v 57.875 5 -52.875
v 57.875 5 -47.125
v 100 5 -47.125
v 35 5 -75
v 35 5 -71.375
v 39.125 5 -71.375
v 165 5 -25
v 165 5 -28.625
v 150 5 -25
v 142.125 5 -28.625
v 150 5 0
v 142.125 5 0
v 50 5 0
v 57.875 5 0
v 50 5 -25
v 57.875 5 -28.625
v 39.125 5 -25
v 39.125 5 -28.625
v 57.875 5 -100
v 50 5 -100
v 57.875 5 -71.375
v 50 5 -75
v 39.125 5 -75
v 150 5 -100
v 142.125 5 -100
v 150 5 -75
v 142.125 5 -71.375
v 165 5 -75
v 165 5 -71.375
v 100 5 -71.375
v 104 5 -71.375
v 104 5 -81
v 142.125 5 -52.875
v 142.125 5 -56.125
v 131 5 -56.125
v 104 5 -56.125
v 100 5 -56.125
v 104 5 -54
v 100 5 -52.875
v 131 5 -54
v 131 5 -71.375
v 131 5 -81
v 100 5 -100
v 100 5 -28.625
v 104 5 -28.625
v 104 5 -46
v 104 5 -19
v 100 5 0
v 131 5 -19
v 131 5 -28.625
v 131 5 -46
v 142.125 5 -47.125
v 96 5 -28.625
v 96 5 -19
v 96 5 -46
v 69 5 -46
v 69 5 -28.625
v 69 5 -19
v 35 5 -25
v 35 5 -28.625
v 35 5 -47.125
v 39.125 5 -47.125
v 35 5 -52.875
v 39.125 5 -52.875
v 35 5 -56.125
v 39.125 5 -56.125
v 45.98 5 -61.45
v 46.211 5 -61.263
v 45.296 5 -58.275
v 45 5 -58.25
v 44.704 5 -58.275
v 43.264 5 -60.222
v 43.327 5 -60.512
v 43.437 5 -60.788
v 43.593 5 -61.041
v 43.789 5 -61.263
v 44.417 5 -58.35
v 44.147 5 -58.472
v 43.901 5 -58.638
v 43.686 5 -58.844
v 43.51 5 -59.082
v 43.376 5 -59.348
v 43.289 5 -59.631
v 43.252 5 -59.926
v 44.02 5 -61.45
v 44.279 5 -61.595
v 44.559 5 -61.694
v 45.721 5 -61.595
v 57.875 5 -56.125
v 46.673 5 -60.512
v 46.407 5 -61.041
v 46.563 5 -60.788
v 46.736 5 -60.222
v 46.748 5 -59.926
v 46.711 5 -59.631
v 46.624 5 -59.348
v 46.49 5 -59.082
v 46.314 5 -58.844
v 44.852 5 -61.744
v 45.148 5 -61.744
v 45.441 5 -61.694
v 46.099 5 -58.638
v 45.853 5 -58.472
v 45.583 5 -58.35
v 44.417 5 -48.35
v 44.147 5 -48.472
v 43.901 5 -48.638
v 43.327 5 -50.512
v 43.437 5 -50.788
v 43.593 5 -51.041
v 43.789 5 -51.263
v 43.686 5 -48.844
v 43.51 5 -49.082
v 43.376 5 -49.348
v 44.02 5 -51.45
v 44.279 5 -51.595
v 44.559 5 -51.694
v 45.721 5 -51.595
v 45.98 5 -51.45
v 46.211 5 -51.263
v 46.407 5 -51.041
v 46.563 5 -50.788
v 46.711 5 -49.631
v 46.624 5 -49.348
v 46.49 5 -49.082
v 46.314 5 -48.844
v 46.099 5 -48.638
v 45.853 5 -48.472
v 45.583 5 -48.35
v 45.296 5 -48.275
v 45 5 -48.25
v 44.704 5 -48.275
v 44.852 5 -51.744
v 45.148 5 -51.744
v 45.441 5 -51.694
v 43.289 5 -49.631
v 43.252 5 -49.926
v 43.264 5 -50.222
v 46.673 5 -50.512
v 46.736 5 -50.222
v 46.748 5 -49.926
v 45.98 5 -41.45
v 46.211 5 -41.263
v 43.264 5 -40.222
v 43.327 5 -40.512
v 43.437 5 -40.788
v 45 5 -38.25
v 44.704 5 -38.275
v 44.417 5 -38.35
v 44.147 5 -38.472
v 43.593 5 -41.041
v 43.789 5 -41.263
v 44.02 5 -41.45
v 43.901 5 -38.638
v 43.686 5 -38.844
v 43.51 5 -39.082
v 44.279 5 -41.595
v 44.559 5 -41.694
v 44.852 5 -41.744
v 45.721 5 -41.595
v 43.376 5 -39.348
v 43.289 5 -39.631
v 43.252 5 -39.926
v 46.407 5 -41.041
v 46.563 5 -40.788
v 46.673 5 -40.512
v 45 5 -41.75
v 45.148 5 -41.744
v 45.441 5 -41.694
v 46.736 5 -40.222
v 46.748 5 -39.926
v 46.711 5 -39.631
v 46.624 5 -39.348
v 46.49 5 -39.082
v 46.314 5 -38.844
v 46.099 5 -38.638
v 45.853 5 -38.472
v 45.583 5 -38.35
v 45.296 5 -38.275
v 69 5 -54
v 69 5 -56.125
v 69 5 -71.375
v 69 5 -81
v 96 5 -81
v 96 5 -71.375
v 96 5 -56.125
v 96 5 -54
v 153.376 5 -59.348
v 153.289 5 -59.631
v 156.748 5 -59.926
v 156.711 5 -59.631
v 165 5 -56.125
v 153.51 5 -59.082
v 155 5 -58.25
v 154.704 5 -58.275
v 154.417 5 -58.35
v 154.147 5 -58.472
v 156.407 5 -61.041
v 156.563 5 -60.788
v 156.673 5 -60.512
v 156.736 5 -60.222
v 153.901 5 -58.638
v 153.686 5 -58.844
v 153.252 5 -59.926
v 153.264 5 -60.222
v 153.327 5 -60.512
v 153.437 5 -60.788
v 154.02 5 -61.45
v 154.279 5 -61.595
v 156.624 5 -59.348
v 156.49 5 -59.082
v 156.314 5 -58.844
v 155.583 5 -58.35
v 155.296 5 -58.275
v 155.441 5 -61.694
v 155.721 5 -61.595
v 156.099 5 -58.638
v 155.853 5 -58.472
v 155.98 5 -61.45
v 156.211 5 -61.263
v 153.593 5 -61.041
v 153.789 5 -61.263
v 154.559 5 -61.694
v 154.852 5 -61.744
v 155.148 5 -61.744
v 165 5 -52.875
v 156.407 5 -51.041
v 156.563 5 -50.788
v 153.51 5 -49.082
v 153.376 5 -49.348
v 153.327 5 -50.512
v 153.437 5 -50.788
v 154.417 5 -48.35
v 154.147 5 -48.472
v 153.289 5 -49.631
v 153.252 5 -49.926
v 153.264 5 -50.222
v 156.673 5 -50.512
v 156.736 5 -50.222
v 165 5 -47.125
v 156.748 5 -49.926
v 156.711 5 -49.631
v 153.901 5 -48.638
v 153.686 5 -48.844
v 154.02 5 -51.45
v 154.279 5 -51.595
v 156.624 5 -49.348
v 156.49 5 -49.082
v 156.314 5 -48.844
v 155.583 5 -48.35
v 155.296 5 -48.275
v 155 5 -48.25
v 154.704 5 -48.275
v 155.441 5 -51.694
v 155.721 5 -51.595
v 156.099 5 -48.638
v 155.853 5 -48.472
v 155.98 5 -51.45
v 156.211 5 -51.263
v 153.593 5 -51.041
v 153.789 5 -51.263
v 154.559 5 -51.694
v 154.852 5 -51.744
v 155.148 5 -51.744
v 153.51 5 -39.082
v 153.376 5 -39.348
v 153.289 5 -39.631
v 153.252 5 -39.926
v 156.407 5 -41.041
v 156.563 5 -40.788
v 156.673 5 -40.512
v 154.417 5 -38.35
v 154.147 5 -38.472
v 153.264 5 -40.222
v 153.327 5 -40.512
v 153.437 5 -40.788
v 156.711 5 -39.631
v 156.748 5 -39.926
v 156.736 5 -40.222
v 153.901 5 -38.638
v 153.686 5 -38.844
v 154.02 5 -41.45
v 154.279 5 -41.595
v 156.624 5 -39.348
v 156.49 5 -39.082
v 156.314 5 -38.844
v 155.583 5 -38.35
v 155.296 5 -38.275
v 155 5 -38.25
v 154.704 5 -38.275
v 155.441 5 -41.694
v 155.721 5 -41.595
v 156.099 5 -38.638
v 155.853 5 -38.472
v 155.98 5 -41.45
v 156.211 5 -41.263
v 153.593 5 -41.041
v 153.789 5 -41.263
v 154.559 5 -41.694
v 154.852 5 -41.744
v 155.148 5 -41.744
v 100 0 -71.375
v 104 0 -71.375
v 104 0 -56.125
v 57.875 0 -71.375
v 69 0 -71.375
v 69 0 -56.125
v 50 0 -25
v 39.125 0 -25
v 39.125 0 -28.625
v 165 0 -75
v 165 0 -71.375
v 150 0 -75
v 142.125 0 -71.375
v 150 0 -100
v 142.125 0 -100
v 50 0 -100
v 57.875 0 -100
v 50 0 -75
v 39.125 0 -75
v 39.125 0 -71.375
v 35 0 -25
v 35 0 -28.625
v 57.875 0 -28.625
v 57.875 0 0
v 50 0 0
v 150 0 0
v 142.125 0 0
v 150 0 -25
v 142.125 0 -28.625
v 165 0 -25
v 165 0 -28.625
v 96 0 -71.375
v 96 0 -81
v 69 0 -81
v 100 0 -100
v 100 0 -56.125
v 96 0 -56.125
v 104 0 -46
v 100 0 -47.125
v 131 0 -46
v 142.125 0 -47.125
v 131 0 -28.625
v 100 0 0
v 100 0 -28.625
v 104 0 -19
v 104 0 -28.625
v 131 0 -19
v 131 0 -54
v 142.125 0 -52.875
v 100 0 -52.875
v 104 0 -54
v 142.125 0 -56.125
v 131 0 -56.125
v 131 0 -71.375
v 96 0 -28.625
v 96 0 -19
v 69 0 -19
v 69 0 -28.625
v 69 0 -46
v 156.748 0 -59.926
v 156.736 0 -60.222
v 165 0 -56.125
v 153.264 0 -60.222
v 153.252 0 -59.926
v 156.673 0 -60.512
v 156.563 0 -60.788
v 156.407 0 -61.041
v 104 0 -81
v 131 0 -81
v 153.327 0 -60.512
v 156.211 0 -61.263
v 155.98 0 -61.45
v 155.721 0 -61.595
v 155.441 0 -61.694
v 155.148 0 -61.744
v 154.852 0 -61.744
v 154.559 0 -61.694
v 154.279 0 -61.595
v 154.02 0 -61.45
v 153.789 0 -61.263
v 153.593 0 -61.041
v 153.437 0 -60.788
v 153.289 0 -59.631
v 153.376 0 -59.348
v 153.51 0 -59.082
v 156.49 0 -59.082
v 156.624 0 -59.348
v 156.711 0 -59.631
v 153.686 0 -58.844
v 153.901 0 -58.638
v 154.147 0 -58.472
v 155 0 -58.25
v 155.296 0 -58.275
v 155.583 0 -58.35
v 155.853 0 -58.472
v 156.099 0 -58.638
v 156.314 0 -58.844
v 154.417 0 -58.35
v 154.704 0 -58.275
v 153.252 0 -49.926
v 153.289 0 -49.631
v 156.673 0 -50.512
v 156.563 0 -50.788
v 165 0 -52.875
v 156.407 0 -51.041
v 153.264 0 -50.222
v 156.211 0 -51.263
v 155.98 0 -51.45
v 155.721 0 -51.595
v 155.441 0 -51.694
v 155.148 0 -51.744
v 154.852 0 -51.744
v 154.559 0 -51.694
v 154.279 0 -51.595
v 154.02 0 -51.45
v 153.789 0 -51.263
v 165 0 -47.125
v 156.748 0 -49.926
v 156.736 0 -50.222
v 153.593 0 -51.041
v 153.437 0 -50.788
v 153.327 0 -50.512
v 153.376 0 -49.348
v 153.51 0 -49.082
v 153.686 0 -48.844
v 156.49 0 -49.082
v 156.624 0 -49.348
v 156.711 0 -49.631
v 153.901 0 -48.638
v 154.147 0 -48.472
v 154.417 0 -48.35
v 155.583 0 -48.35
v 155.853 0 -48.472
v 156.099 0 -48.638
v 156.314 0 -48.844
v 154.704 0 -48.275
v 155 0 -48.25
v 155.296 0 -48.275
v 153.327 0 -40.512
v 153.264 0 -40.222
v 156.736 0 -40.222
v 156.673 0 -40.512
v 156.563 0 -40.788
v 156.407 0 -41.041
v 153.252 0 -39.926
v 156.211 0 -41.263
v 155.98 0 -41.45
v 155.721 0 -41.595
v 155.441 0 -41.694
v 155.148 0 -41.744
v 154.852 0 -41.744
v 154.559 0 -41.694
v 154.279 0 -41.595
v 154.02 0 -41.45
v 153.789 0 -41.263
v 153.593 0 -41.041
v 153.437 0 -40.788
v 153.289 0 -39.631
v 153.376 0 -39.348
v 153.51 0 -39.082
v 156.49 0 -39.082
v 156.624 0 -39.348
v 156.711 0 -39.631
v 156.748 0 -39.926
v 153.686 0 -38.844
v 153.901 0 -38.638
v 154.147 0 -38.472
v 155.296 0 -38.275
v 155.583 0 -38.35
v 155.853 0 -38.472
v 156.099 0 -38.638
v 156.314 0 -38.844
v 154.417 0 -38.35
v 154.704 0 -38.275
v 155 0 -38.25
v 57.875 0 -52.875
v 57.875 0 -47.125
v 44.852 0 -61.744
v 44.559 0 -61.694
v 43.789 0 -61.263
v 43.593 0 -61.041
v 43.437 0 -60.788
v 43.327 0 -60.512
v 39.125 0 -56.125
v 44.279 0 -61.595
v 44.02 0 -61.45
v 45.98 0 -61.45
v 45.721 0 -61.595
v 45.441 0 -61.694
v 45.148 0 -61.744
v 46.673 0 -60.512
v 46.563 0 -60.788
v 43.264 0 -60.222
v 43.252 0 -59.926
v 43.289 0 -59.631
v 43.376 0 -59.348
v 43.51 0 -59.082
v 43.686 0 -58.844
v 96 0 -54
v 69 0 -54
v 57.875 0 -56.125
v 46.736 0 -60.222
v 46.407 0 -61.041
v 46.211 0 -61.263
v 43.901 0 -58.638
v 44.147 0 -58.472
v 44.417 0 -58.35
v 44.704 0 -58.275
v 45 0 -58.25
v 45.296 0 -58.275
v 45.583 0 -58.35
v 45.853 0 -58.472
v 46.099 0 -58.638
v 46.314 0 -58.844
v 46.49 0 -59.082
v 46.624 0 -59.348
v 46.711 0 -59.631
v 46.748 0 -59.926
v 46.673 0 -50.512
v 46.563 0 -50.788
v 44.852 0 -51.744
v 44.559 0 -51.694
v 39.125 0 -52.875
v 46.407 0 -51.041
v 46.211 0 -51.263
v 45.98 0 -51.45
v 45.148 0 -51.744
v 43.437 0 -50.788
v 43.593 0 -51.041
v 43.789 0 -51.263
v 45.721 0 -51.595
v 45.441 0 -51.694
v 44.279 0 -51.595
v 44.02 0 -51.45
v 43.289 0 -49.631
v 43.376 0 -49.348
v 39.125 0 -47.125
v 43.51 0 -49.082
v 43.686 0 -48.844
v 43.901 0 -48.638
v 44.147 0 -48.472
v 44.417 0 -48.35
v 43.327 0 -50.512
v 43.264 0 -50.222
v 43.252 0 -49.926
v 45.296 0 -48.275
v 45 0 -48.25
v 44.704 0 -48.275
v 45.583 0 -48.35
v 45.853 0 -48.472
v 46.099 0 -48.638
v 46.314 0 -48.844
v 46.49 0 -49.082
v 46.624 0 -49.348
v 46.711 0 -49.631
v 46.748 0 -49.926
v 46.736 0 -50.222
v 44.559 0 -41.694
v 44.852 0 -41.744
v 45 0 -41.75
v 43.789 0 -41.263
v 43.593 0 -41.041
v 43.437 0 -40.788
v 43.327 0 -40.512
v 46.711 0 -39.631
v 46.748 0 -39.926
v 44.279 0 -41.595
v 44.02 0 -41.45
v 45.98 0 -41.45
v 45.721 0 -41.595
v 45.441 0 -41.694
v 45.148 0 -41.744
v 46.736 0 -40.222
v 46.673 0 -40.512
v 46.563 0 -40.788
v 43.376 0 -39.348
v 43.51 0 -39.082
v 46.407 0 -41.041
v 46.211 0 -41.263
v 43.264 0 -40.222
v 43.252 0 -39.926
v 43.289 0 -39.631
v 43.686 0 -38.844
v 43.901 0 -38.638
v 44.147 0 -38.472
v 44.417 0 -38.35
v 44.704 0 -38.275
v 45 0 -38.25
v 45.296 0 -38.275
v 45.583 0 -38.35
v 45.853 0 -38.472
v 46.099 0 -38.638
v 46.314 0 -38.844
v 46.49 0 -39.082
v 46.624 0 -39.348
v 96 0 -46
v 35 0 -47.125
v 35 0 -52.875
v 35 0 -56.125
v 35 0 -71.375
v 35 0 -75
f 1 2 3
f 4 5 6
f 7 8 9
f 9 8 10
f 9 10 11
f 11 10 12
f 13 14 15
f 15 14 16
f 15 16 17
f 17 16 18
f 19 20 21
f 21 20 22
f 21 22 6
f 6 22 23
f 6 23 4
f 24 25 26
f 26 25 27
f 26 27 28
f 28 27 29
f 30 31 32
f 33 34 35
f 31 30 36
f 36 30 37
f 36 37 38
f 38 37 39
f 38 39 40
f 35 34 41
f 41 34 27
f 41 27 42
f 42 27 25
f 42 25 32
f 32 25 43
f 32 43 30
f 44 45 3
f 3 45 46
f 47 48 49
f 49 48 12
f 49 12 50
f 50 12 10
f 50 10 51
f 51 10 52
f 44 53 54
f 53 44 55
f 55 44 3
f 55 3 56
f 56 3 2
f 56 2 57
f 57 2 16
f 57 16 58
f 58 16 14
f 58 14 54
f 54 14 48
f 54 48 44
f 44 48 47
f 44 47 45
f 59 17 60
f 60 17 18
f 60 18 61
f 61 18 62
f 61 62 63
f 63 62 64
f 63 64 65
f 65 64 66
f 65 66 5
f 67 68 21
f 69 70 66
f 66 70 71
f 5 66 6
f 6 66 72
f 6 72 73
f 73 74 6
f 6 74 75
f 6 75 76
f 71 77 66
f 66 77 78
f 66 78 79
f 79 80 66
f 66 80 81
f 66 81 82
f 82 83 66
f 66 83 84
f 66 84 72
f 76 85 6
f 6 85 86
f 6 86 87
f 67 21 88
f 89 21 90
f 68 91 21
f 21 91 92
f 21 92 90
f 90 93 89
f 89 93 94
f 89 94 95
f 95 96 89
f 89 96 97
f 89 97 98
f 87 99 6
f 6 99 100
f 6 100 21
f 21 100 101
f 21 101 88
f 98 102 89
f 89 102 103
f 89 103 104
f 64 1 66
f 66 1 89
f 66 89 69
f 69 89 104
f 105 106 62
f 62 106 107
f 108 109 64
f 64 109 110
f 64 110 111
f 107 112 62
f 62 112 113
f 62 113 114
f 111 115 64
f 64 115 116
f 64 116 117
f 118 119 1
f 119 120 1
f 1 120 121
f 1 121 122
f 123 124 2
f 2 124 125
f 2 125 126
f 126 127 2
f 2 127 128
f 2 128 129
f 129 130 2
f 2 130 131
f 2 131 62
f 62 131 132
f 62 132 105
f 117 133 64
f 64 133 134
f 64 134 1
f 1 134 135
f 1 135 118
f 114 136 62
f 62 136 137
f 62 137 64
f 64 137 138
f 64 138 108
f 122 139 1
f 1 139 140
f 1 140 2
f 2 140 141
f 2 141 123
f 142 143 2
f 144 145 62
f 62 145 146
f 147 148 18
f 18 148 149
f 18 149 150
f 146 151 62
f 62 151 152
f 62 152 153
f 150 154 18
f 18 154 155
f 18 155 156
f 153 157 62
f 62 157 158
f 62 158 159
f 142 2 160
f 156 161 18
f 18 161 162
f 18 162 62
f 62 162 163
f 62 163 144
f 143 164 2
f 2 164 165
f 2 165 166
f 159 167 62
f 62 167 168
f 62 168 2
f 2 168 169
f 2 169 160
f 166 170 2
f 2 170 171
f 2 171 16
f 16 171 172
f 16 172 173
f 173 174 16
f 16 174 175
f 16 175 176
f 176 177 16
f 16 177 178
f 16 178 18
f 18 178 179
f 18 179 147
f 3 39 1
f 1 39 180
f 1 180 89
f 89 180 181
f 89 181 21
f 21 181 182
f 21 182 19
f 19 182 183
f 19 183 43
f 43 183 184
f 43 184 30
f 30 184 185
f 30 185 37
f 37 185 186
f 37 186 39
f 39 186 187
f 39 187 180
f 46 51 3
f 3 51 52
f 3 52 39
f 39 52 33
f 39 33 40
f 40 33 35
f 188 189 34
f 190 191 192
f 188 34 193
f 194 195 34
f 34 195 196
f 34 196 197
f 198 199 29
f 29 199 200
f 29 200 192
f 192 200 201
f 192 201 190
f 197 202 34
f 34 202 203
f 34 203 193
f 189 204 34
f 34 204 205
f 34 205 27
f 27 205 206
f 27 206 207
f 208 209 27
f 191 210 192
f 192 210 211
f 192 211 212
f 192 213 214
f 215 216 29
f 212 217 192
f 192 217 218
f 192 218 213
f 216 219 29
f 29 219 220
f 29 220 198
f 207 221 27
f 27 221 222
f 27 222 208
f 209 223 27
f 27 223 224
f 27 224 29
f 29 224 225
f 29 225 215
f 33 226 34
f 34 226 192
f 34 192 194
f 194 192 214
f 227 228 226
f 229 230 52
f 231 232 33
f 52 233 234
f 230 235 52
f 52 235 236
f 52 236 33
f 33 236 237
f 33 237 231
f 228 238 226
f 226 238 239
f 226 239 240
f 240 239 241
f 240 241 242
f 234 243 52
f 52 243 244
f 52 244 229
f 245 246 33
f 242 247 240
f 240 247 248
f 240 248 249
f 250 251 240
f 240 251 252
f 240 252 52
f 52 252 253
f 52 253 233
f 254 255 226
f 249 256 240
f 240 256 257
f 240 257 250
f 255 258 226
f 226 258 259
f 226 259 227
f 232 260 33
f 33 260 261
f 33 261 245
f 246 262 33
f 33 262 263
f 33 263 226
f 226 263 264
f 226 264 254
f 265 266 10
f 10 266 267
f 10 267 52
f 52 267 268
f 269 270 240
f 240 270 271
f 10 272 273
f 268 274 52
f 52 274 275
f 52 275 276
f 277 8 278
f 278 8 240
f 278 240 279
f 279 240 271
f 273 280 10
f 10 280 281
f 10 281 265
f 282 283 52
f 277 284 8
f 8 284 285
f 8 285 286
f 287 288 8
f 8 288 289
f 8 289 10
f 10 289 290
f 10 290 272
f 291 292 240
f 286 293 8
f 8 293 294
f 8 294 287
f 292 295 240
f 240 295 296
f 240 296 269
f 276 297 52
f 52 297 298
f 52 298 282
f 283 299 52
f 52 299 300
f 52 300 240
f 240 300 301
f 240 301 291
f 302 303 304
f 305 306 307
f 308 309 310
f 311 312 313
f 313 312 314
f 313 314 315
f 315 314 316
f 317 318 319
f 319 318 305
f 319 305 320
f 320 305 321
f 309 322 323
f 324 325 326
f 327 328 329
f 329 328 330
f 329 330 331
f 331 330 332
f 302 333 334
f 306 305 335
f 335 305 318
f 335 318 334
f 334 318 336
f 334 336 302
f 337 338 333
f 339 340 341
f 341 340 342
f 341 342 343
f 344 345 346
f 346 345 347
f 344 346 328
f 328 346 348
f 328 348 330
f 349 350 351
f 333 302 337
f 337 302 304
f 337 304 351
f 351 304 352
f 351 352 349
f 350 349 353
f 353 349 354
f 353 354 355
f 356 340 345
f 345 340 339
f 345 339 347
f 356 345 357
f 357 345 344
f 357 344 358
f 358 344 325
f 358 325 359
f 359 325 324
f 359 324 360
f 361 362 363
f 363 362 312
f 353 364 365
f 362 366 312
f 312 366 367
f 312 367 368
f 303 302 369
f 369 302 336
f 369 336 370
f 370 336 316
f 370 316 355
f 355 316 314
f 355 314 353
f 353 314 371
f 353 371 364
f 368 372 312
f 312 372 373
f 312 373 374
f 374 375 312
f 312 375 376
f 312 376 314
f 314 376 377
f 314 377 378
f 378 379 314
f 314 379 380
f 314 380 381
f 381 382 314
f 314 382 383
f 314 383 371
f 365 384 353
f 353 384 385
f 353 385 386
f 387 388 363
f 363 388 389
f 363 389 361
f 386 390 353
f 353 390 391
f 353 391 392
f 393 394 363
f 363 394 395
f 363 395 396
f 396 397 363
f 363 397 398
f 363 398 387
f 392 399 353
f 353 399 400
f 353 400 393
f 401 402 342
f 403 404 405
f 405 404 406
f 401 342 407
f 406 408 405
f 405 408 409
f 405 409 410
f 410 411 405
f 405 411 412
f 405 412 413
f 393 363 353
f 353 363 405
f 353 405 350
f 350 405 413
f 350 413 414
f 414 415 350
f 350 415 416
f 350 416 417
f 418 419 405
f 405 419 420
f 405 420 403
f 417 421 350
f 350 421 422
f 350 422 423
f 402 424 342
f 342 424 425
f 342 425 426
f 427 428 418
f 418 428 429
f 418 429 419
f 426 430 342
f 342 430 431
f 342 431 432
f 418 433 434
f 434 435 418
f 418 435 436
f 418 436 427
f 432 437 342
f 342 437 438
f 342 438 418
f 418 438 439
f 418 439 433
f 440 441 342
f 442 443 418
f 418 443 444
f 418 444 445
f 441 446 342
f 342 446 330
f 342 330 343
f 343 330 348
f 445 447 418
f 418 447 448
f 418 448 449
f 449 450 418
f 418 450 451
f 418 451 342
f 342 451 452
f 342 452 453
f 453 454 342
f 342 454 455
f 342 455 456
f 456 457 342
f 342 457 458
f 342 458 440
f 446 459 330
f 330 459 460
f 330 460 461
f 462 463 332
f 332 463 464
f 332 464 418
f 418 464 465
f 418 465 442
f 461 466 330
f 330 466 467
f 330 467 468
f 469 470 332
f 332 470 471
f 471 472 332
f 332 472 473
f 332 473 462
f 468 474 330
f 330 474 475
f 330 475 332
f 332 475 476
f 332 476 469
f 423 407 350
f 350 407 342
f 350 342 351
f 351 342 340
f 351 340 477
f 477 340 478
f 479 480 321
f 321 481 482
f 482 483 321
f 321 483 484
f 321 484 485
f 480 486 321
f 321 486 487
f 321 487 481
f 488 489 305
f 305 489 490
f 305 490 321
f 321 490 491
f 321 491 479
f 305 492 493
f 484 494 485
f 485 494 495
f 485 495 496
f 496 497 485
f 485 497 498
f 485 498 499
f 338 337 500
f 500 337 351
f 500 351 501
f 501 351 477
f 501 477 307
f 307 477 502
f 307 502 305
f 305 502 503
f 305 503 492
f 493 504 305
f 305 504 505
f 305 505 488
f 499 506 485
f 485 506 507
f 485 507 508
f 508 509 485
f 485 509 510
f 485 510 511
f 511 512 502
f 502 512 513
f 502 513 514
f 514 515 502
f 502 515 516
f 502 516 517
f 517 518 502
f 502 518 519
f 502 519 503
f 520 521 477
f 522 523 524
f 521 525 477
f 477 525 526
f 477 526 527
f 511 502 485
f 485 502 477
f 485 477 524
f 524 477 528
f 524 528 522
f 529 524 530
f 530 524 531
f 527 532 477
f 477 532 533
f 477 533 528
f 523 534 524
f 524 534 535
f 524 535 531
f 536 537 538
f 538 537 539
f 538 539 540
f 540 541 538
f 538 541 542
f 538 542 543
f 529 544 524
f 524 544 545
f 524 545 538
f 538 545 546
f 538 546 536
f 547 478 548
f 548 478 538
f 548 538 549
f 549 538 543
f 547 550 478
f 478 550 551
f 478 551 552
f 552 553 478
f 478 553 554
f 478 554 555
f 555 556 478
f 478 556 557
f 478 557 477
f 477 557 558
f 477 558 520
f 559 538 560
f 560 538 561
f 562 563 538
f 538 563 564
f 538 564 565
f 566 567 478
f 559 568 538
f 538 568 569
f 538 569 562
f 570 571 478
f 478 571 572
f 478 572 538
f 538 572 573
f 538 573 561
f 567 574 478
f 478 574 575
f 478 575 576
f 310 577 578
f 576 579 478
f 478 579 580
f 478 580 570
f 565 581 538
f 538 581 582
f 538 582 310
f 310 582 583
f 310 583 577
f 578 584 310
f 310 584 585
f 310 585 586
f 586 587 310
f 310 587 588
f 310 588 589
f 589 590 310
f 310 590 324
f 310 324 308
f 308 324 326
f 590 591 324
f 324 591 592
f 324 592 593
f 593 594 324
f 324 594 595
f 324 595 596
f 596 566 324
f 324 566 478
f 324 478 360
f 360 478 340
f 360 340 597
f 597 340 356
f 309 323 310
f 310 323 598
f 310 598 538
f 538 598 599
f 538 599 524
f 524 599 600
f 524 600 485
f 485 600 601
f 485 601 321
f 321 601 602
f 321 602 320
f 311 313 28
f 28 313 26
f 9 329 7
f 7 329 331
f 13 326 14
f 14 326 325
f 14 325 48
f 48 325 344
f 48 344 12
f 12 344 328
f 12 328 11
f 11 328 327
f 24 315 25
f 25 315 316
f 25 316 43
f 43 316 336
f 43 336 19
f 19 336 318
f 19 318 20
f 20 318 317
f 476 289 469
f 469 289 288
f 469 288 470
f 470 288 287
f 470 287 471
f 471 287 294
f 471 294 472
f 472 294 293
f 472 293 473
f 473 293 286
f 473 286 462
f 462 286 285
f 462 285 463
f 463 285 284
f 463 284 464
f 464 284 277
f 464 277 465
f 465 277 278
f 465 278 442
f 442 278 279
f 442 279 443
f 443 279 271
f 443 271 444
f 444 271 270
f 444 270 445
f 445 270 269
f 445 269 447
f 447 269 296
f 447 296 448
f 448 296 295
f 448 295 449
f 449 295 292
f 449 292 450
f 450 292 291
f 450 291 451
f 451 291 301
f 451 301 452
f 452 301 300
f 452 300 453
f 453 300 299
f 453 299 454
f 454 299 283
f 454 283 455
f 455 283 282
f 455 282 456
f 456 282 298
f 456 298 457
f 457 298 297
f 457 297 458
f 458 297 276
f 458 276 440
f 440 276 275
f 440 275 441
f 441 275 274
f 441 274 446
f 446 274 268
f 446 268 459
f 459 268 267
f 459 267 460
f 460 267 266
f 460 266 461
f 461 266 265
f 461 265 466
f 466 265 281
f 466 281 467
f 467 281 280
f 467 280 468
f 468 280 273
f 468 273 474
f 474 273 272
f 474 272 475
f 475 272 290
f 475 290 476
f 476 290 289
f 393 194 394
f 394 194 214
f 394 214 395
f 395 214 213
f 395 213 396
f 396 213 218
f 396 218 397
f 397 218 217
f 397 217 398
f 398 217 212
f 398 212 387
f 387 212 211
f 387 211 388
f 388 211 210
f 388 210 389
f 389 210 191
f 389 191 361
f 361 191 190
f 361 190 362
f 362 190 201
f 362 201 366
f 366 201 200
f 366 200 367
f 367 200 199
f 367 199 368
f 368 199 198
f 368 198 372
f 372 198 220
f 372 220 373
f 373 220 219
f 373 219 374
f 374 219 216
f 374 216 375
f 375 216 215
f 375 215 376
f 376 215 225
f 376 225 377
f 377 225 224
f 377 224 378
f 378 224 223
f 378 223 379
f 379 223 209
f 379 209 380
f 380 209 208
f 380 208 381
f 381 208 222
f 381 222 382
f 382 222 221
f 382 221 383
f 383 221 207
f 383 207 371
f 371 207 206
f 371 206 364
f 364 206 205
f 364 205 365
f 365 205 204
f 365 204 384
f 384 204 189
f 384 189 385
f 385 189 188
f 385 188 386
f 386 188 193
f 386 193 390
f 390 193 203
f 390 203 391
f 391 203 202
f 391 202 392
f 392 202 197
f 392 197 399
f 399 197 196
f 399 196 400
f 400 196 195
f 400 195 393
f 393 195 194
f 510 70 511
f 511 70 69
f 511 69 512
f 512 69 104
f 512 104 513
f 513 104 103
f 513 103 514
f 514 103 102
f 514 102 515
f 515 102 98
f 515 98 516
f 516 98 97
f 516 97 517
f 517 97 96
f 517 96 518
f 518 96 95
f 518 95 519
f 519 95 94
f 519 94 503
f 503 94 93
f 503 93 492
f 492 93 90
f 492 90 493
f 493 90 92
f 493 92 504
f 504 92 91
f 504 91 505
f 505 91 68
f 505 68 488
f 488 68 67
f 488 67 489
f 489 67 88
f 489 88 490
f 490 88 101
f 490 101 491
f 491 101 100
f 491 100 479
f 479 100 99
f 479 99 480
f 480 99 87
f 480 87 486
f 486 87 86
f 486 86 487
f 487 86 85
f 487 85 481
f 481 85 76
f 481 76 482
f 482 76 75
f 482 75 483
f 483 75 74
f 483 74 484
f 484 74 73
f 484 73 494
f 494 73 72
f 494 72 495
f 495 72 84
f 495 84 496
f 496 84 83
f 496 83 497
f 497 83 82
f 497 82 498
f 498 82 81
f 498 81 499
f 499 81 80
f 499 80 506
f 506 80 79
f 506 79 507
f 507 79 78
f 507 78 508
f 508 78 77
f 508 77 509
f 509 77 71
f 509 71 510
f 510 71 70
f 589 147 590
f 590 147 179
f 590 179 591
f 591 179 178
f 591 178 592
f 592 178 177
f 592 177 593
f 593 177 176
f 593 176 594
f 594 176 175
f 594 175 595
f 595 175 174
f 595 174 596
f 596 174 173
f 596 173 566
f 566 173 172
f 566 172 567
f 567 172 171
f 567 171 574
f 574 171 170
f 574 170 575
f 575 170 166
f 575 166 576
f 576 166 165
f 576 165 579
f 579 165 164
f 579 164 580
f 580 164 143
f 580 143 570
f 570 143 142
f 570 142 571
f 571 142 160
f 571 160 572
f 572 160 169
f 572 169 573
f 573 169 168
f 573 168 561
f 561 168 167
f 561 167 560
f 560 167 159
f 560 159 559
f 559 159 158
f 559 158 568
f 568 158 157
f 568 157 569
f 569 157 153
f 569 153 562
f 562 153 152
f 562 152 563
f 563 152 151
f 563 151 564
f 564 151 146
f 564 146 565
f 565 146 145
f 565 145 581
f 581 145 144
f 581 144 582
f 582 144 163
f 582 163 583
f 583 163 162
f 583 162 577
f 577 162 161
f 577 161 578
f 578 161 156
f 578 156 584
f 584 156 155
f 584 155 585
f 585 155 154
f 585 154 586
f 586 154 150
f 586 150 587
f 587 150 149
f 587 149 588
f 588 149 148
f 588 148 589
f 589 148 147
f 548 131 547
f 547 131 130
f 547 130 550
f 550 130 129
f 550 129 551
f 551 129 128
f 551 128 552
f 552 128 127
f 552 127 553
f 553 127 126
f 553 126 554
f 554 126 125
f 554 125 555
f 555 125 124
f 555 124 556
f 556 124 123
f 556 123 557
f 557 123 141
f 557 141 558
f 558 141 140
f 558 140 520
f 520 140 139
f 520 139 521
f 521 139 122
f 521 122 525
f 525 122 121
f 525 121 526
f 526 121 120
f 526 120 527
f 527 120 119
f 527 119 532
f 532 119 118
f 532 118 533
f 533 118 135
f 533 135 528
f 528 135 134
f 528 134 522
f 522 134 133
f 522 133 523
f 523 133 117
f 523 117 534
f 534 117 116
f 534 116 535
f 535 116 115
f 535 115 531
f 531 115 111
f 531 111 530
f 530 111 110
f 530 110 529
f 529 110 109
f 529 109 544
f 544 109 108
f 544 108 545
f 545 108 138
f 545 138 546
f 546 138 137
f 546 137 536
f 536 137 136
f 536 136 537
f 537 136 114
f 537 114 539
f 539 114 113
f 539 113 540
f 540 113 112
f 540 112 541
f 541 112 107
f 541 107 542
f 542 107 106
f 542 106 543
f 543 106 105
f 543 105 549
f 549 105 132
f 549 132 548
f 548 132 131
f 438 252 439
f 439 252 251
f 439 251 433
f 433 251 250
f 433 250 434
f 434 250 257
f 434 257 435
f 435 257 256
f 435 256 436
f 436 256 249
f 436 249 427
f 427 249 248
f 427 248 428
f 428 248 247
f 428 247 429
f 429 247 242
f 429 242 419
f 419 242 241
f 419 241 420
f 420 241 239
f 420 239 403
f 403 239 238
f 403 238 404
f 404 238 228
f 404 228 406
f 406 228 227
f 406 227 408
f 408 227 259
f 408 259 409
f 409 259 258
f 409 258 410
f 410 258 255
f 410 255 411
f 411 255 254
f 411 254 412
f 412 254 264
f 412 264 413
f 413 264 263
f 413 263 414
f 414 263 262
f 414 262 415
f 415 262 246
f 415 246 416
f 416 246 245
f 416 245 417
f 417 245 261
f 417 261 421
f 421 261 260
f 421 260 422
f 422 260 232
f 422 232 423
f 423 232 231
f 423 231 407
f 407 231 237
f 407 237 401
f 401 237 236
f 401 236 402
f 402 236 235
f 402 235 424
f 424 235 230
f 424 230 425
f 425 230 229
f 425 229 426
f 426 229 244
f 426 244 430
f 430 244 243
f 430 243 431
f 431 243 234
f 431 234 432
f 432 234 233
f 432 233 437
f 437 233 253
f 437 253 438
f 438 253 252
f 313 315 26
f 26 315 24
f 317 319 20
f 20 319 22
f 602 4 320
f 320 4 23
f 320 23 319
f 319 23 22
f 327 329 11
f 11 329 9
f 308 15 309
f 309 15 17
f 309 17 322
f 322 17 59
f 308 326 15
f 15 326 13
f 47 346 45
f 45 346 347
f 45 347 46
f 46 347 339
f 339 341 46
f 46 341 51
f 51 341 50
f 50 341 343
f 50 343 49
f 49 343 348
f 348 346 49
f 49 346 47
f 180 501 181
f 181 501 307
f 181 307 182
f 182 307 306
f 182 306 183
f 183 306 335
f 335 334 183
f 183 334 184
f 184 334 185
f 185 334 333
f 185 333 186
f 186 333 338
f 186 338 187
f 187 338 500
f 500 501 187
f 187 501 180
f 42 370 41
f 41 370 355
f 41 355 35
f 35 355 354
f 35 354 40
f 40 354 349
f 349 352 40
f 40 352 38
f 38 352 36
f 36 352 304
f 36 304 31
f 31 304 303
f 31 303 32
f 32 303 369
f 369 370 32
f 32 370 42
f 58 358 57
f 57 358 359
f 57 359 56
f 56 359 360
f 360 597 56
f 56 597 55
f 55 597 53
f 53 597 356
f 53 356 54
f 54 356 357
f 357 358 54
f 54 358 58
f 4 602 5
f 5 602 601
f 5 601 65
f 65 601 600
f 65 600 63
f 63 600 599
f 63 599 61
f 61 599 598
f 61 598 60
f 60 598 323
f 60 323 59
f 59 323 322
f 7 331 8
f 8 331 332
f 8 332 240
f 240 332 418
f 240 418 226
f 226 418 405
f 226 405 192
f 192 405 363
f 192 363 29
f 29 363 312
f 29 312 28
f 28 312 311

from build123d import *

# Parameters (mm, degrees)
SKETCH1_W           = 200
SKETCH1_H           = 100
BOSS_EXTRUDE1_DEPTH = 5
SKETCH2_R           = 1.75
CUT_EXTRUDE1_DEPTH  = 224.662692463
SKETCH4_R           = 1.75
CUT_EXTRUDE2_DEPTH  = 224.662692463
SKETCH6_W           = 50
SKETCH6_H           = 25
SKETCH6_W_2         = 27
SKETCH6_H_2         = 27
CUT_EXTRUDE4_DEPTH  = 224.662692463
SKETCH7_W           = 35
SKETCH7_H           = 50
SKETCH7_R           = 1.75
CUT_EXTRUDE5_DEPTH  = 224.662692463


with BuildPart() as part:
    # Sketch1 → Boss-Extrude1 (new body)
    with BuildSketch(Plane(origin=(0, 0, 0), x_dir=(1, 0, 0), z_dir=(0, 1, 0))):
        with Locations((100, 50)):
            Rectangle(SKETCH1_W, SKETCH1_H)
    extrude(amount=BOSS_EXTRUDE1_DEPTH)

    # Sketch2 → Cut-Extrude1 (cut, through all)
    with BuildSketch(Plane(origin=(0, 5, 0), x_dir=(1, 0, 0), z_dir=(0, 1, 0))):
        with Locations(Location((170, 60, 0), (0, 0, 270))):
            Circle(SKETCH2_R)
        with Locations(Location((170, 40, 0), (0, 0, 270))):
            Circle(SKETCH2_R)
        with Locations(Location((30, 40, 0), (0, 0, 270))):
            Circle(SKETCH2_R)
        with Locations(Location((30, 60, 0), (0, 0, 90))):
            Circle(SKETCH2_R)
        with Locations(Location((155, 40, 0), (0, 0, 270))):
            Circle(SKETCH2_R)
        with Locations(Location((155, 60, 0), (0, 0, 270))):
            Circle(SKETCH2_R)
        with Locations(Location((45, 60, 0), (0, 0, 270))):
            Circle(SKETCH2_R)
        with Locations(Location((45, 40, 0), (0, 0, 90))):
            Circle(SKETCH2_R)
    extrude(amount=-CUT_EXTRUDE1_DEPTH, mode=Mode.SUBTRACT)

    # Sketch4 → Cut-Extrude2 (cut, through all)
    with BuildSketch(Plane(origin=(0, 5, 0), x_dir=(1, 0, 0), z_dir=(0, 1, 0))):
        with Locations(Location((155, 50, 0), (0, 0, 270))):
            Circle(SKETCH4_R)
        with Locations(Location((45, 50, 0), (0, 0, 270))):
            Circle(SKETCH4_R)
    extrude(amount=-CUT_EXTRUDE2_DEPTH, mode=Mode.SUBTRACT)

    # Sketch6 → Cut-Extrude4 (cut, through all)
    with BuildSketch(Plane(origin=(0, 5, 0), x_dir=(1, 0, 0), z_dir=(0, 1, 0))):
        with Locations((25, 12.5)):
            Rectangle(SKETCH6_W, SKETCH6_H)
        with Locations((25, 87.5)):
            Rectangle(SKETCH6_W, SKETCH6_H)
        with Locations((82.5, 67.5)):
            Rectangle(SKETCH6_W_2, SKETCH6_H_2)
        with Locations((117.5, 67.5)):
            Rectangle(SKETCH6_W_2, SKETCH6_H_2)
        with Locations((82.5, 32.5)):
            Rectangle(SKETCH6_W_2, SKETCH6_H_2)
        with Locations((117.5, 32.5)):
            Rectangle(SKETCH6_W_2, SKETCH6_H_2)
        with Locations((175, 87.5)):
            Rectangle(SKETCH6_W, SKETCH6_H)
        with Locations((175, 12.5)):
            Rectangle(SKETCH6_W, SKETCH6_H)
    extrude(amount=-CUT_EXTRUDE4_DEPTH, mode=Mode.SUBTRACT)

    # Sketch7 → Cut-Extrude5 (cut, through all)
    # profile 1 of 2: a face of its own
    with BuildSketch(Plane(origin=(0, 5, 0), x_dir=(1, 0, 0), z_dir=(0, 1, 0))):
        with Locations((182.5, 50)):
            Rectangle(SKETCH7_W, SKETCH7_H)
        with Locations((170, 40)):
            Circle(SKETCH7_R, mode=Mode.SUBTRACT)
        with Locations((170, 60)):
            Circle(SKETCH7_R, mode=Mode.SUBTRACT)
    # profile 2 of 2: a face of its own
    with BuildSketch(Plane(origin=(0, 5, 0), x_dir=(1, 0, 0), z_dir=(0, 1, 0))):
        with Locations((17.5, 50)):
            Rectangle(SKETCH7_W, SKETCH7_H)
        with Locations((30, 40)):
            Circle(SKETCH7_R, mode=Mode.SUBTRACT)
        with Locations((30, 60)):
            Circle(SKETCH7_R, mode=Mode.SUBTRACT)
    extrude(amount=-CUT_EXTRUDE5_DEPTH, mode=Mode.SUBTRACT)


solid = part.part
